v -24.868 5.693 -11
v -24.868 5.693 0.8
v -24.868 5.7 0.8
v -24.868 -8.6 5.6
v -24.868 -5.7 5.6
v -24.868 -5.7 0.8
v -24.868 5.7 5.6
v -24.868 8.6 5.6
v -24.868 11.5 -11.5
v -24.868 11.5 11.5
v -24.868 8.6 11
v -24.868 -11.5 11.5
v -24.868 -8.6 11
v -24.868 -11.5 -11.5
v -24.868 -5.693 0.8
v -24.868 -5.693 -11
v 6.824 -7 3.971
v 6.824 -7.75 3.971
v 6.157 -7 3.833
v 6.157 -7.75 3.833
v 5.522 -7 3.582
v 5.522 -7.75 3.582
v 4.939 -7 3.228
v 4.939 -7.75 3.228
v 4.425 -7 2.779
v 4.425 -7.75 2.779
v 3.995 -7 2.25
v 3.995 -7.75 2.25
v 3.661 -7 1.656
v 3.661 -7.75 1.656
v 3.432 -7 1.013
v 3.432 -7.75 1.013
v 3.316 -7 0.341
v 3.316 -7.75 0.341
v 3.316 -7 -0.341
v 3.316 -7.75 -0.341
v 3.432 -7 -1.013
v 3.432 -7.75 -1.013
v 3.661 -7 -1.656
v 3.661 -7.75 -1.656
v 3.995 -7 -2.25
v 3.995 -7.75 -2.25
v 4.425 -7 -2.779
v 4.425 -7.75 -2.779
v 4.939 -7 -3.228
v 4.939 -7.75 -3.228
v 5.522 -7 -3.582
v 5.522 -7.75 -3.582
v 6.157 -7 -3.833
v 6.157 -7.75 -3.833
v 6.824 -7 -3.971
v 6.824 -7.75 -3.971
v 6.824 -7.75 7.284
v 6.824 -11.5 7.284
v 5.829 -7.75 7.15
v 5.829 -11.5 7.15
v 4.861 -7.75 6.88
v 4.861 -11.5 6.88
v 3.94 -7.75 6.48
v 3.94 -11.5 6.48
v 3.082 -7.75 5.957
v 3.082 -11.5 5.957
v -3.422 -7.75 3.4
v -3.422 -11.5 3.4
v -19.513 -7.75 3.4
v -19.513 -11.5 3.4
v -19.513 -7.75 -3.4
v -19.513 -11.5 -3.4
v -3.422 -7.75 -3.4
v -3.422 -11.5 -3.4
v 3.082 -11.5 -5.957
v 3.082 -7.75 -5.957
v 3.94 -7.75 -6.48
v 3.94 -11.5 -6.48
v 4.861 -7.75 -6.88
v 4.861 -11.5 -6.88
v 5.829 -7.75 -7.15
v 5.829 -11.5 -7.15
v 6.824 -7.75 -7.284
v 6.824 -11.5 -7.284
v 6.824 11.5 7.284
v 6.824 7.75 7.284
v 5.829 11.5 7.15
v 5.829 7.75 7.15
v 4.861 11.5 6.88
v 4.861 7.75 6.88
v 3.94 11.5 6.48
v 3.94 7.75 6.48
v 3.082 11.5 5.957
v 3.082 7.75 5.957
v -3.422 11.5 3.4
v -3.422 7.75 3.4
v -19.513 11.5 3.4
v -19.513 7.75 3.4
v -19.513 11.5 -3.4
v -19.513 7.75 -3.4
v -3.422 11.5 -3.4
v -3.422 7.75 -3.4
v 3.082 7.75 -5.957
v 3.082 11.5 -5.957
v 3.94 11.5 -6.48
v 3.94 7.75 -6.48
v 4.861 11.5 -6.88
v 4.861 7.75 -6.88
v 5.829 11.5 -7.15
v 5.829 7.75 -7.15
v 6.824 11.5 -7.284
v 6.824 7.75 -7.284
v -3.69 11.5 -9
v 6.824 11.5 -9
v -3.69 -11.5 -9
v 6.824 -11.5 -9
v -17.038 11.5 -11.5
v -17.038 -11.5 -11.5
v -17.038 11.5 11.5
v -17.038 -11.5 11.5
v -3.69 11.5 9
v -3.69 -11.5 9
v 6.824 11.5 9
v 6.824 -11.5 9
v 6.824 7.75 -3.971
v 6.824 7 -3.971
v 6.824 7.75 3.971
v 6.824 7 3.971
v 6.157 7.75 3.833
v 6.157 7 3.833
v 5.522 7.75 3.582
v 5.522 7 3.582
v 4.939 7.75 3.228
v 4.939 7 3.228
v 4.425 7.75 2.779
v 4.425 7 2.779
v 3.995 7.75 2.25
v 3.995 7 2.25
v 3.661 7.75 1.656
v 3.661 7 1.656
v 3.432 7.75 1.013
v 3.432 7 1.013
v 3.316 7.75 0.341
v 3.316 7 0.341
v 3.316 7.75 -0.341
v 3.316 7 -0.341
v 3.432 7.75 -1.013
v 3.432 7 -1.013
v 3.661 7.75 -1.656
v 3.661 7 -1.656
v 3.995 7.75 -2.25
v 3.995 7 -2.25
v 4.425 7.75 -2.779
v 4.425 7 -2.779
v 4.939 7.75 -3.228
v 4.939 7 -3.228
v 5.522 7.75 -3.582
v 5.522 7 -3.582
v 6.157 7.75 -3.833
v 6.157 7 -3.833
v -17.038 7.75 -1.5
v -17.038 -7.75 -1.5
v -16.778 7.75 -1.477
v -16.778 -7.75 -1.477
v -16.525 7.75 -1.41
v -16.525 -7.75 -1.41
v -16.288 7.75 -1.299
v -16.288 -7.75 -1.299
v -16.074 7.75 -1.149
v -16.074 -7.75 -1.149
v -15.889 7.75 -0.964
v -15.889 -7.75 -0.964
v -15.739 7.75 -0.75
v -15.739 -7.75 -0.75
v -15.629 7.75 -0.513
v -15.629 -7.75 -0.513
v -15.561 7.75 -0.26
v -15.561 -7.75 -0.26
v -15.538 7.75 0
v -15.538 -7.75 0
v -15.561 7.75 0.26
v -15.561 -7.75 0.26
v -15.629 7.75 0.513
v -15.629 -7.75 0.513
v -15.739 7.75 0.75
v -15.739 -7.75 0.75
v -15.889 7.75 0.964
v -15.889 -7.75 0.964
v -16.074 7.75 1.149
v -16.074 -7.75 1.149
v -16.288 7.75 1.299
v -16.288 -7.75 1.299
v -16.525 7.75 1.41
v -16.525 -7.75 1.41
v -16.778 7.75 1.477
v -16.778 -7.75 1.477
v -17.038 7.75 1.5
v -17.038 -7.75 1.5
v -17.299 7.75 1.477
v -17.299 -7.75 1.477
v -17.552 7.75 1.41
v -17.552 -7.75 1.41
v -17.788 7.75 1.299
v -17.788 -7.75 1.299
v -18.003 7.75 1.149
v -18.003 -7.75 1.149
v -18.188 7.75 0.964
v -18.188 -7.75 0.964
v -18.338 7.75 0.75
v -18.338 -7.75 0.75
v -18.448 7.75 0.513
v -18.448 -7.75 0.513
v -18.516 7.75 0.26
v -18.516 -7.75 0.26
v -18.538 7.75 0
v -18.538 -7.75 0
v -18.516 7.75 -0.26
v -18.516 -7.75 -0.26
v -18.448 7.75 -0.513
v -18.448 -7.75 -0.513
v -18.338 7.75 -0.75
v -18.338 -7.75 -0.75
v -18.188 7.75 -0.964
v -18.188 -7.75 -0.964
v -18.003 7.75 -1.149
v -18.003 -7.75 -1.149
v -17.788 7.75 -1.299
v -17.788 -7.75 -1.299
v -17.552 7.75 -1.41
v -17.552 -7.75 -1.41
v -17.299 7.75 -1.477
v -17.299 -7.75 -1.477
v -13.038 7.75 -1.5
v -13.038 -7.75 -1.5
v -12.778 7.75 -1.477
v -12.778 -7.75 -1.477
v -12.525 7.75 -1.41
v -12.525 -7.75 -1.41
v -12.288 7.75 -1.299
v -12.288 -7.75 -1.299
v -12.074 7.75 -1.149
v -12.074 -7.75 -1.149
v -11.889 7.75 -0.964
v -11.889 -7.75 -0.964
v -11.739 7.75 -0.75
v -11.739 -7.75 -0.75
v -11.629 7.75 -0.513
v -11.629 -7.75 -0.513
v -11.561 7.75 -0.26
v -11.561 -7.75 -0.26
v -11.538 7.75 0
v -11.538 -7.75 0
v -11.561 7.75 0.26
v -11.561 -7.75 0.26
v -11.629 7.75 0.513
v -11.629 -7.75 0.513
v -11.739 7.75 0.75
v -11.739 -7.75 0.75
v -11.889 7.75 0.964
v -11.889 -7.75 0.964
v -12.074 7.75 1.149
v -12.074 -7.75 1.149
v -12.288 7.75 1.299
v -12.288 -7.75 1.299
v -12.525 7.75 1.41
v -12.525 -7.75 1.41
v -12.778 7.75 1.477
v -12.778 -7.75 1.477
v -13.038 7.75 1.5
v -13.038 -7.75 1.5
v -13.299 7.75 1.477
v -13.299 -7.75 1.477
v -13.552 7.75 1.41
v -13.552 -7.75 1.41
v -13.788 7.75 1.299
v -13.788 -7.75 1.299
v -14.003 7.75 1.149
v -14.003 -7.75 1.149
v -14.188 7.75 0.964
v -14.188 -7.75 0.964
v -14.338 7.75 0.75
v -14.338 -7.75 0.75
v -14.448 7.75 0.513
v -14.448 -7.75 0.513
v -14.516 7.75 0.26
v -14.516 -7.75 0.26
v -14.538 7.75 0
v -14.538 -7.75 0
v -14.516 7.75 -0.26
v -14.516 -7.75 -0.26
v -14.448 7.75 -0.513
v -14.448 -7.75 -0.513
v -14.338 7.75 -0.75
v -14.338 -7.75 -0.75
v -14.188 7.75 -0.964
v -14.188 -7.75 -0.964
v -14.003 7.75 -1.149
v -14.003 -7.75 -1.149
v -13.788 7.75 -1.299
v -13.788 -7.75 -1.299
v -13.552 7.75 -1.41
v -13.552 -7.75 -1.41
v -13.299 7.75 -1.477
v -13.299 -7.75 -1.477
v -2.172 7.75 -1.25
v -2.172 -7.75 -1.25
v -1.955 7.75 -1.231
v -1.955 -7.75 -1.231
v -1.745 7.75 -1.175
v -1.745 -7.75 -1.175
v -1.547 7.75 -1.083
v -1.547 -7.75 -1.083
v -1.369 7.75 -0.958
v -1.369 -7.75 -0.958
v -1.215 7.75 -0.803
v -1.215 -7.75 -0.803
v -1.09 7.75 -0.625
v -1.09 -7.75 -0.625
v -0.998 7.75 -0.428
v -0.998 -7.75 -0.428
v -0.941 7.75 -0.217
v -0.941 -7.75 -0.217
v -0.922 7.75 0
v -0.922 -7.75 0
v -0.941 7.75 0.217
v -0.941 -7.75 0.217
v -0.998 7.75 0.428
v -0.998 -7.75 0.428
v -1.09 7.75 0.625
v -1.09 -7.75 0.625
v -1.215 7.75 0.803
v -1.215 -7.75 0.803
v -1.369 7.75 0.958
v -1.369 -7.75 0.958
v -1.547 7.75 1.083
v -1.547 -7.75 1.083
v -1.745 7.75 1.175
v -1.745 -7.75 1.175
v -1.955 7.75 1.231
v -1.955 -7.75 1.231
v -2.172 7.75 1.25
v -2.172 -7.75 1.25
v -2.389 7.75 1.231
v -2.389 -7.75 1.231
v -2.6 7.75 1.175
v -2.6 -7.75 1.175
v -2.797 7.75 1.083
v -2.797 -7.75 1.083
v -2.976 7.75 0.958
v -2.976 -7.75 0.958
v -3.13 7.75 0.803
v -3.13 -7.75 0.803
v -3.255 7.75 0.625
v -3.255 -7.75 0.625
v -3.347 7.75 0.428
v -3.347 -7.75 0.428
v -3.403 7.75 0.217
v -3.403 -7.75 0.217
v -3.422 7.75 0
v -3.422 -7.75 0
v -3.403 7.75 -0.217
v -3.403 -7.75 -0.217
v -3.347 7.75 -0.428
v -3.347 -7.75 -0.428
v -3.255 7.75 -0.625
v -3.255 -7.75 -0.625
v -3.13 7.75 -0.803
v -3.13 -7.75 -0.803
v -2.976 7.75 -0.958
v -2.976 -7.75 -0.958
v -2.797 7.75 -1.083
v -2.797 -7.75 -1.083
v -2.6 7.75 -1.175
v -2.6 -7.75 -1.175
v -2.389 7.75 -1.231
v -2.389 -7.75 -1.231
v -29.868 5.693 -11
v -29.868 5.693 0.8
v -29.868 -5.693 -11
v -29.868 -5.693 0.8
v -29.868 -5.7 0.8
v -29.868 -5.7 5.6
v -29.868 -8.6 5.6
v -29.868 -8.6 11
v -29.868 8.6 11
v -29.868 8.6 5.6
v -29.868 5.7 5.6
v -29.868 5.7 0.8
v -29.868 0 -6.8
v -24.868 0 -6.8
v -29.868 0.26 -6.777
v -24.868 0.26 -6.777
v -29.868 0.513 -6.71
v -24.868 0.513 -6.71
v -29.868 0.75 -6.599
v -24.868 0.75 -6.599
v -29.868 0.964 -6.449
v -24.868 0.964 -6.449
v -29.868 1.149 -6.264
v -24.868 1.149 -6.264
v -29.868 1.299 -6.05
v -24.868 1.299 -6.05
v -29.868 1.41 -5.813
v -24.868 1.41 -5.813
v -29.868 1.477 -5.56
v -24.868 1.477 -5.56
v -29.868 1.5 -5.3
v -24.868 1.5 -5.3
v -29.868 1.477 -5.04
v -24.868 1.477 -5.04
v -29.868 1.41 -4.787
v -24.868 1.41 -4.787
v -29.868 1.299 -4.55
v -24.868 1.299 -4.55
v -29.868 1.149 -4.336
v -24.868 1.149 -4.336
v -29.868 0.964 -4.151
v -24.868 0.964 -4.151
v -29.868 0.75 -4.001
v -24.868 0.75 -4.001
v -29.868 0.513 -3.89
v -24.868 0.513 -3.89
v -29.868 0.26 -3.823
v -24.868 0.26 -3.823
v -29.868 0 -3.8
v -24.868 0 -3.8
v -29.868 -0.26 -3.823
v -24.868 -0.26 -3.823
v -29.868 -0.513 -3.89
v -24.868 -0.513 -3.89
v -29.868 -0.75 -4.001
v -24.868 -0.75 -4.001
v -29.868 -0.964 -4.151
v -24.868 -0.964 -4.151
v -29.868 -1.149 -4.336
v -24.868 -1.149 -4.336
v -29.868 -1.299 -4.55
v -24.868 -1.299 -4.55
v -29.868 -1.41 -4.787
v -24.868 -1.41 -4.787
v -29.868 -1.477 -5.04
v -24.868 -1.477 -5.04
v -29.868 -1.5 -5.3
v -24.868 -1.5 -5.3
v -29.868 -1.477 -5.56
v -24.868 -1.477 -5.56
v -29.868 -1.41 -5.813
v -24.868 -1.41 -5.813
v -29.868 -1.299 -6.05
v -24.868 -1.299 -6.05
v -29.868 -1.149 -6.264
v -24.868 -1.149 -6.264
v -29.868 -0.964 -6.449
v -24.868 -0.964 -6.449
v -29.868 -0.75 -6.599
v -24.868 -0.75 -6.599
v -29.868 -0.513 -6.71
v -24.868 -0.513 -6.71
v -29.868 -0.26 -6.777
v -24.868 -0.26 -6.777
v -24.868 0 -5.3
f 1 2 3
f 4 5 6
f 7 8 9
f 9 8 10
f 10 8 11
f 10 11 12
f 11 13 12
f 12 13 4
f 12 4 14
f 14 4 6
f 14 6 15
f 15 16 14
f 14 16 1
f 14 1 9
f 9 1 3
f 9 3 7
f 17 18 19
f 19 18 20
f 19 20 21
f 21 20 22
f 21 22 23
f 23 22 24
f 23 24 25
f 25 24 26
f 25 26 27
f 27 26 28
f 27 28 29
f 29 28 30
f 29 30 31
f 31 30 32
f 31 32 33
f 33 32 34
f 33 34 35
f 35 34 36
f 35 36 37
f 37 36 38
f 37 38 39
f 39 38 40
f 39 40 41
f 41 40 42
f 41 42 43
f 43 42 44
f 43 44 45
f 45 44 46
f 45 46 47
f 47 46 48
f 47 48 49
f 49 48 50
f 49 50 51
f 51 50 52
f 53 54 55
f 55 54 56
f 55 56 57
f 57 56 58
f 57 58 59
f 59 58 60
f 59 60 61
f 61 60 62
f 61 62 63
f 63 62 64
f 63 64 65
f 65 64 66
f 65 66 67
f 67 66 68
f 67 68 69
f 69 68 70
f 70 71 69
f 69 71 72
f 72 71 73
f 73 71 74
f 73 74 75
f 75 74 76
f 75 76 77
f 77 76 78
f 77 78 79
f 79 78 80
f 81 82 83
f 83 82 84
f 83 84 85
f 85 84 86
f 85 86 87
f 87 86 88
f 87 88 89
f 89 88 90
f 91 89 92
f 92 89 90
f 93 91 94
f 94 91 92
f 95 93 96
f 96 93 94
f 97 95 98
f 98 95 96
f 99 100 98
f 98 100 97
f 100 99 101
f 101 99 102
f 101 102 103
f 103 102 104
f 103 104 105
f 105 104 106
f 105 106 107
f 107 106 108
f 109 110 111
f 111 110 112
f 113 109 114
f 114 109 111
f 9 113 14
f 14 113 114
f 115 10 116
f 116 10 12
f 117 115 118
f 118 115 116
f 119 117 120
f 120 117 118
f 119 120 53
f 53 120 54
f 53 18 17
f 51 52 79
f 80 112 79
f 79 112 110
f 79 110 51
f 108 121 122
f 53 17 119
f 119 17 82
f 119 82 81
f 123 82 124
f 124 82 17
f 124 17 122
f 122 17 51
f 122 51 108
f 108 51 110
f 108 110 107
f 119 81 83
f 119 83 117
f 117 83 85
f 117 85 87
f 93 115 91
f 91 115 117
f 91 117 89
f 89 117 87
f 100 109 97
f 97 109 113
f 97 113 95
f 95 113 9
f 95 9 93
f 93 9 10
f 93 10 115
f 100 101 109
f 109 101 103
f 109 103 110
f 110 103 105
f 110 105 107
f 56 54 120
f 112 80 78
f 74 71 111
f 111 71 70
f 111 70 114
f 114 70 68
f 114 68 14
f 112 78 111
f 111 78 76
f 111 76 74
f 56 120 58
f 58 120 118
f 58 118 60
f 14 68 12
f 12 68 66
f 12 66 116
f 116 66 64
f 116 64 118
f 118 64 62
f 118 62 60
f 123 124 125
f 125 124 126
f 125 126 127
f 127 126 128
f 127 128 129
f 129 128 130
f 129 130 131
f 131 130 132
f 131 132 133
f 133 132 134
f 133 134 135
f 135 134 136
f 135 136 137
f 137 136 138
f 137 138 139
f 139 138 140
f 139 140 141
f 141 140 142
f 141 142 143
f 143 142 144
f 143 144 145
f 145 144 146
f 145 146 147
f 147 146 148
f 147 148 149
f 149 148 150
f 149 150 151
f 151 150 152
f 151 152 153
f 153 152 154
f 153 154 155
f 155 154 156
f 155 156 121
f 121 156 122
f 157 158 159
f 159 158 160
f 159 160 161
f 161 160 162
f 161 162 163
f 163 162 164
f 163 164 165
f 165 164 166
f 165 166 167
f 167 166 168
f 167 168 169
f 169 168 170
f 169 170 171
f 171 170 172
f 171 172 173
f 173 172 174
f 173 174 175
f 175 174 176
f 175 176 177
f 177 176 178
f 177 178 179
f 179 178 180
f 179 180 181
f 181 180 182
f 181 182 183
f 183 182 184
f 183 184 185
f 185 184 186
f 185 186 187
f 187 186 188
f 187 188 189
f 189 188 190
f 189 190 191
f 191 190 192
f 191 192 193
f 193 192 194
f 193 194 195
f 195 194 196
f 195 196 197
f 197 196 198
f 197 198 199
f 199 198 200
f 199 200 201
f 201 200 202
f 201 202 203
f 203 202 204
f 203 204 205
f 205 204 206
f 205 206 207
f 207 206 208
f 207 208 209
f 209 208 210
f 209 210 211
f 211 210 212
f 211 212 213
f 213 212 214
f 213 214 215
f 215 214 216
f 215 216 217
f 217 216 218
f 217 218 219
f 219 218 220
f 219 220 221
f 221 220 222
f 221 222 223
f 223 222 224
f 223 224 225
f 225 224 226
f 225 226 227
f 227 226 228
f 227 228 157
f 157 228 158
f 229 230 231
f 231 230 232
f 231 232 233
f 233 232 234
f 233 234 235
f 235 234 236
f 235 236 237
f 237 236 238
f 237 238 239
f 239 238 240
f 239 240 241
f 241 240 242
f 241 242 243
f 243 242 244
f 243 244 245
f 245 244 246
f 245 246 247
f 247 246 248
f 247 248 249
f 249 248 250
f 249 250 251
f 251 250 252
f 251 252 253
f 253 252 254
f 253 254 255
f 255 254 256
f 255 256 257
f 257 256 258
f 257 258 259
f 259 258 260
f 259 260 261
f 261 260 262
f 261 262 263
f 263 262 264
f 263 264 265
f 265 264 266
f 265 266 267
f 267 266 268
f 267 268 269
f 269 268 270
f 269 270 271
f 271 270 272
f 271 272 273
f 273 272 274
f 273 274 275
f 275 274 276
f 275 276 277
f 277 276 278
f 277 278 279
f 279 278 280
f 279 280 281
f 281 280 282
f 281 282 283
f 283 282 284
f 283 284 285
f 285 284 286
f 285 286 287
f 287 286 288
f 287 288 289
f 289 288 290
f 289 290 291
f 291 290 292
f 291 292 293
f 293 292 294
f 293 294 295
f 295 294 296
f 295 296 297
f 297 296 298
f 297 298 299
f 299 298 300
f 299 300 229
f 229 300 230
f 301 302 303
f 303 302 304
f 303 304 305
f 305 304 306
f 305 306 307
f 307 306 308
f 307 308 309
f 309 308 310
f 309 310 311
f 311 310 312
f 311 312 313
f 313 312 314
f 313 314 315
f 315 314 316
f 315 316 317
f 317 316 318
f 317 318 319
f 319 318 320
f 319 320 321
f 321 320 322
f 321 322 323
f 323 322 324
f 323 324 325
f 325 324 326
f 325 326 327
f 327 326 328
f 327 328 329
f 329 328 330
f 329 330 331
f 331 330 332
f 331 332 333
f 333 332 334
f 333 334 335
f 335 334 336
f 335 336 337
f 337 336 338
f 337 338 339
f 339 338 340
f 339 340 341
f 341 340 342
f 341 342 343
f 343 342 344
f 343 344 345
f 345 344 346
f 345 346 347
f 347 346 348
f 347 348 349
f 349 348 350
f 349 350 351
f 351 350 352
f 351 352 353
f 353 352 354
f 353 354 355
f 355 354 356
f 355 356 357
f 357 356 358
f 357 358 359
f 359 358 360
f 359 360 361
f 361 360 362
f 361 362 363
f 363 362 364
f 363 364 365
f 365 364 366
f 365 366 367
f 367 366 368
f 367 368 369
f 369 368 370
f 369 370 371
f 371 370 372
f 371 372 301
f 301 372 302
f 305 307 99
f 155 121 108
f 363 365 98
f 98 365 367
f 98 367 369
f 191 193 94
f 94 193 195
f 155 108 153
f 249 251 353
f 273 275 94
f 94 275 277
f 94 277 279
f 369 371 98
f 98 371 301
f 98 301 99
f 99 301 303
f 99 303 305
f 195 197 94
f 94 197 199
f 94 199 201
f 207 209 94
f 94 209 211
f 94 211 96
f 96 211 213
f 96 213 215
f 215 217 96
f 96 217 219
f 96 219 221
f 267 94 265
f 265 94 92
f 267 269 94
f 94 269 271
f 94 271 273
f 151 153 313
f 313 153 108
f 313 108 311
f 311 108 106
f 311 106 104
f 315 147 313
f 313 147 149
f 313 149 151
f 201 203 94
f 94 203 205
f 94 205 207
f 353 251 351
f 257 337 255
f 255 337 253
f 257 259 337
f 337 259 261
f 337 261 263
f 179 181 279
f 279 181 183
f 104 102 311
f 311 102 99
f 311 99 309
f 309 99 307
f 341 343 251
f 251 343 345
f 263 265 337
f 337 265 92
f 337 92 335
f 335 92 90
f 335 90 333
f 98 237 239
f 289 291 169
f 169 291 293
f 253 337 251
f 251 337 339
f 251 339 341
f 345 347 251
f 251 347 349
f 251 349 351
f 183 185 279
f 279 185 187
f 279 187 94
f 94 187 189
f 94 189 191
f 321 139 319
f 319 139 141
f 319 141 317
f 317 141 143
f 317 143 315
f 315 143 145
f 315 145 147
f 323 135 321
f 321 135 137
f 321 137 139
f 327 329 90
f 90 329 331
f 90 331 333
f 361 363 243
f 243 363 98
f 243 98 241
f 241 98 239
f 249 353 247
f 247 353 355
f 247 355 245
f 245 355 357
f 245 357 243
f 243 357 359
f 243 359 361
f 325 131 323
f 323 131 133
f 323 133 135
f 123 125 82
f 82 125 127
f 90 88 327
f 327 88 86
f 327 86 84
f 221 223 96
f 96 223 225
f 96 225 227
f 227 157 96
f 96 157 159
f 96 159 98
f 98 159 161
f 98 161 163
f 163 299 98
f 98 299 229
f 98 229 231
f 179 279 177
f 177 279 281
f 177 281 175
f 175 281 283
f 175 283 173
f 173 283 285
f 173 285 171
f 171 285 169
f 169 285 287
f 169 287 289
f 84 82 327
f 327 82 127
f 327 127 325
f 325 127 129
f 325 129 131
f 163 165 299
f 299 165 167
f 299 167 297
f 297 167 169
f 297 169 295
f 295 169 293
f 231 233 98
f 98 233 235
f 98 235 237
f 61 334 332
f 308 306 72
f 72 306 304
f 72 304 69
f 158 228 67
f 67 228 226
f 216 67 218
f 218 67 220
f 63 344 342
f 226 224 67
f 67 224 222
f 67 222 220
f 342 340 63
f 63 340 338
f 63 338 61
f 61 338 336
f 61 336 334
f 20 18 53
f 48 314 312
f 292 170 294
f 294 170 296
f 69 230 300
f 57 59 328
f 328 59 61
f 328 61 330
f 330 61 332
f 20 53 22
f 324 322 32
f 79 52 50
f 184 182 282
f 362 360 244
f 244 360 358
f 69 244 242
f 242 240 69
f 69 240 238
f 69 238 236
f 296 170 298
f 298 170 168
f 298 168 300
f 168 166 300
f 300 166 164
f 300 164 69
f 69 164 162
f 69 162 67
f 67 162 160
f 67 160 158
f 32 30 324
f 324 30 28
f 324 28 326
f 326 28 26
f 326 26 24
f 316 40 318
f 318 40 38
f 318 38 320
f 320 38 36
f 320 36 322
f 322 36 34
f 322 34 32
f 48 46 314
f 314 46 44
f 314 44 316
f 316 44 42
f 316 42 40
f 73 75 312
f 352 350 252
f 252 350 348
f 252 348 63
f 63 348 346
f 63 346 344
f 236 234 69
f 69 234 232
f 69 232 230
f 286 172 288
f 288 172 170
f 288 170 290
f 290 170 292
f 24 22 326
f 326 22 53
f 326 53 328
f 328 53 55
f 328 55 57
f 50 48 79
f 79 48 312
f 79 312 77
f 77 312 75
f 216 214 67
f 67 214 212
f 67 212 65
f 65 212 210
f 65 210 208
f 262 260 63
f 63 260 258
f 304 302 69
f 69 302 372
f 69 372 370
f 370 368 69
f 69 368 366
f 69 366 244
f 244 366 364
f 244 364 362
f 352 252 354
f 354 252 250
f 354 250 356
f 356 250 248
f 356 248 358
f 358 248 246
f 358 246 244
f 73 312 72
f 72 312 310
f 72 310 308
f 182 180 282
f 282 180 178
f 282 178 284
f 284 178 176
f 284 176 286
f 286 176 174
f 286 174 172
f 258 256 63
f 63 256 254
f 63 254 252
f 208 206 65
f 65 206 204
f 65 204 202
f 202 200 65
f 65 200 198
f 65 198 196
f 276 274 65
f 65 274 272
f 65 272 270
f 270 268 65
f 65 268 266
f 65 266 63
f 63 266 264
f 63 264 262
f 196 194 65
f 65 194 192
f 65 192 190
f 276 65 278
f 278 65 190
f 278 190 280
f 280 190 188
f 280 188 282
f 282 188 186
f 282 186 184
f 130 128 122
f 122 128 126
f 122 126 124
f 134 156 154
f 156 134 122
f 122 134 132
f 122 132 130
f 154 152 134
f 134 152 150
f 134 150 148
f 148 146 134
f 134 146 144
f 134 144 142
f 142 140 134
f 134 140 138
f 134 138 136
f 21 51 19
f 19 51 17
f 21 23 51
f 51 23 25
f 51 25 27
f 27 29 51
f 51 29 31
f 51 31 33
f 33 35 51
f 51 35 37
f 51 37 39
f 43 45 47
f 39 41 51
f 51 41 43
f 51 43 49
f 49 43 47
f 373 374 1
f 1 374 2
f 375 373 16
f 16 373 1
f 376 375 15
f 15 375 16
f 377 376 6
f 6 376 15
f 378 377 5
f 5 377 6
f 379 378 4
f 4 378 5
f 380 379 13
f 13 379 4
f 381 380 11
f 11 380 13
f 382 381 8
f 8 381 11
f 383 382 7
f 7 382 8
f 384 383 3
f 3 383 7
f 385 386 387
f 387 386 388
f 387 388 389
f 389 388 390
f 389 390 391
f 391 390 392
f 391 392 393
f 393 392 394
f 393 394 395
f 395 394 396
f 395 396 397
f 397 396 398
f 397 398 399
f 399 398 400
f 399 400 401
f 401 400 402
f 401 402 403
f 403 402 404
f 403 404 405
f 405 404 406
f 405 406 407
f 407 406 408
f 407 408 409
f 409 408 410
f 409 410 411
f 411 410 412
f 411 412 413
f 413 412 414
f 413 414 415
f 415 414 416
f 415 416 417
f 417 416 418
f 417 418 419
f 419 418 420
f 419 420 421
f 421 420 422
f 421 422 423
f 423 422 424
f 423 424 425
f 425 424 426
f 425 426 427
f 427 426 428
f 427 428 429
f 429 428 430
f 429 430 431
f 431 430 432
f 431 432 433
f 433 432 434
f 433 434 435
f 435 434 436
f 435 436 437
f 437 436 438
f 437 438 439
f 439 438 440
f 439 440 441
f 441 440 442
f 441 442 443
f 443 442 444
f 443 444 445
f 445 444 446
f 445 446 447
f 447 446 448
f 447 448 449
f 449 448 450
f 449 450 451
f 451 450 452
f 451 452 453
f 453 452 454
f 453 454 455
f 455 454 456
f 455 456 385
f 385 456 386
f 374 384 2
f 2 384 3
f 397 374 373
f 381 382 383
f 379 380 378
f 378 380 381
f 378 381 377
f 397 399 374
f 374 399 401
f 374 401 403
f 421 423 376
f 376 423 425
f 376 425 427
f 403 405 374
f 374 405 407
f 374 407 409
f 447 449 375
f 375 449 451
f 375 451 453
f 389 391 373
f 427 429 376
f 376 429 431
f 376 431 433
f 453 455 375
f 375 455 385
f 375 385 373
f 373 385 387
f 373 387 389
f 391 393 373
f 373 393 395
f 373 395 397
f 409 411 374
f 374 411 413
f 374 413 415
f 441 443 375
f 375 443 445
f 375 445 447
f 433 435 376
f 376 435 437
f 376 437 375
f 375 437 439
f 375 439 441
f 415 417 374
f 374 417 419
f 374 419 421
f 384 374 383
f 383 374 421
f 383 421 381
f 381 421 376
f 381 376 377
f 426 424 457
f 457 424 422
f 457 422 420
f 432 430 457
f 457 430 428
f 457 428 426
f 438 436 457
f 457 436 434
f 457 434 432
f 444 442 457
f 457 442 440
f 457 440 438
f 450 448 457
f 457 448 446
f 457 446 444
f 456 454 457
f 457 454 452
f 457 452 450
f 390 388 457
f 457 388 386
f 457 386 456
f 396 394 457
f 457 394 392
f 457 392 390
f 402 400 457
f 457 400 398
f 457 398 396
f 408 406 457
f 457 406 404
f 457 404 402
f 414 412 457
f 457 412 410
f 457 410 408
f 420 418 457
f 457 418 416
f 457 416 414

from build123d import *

# Parameters (mm, degrees)
BOSS_EXTRUDE1_DEPTH = 11.5
SKETCH1_13_R        = 1.5
SKETCH1_13_R_2      = 1.25
BOSS_EXTRUDE2_DEPTH = 7.75
BOSS_EXTRUDE3_DEPTH = 7
SKETCH2_R           = 1.5
BOSS_EXTRUDE4_DEPTH = 5


with BuildPart() as part:
    # Sketch1 → Boss-Extrude1 (new, symmetric)
    with BuildSketch(Plane(origin=(0, 0, 0), x_dir=(1, 0, 0), z_dir=(0, 1, 0))):
        with BuildLine():
            Line((6.824314586, 7.284360201), (6.824314586, 9.00020274))
            Line((6.824314586, 9.00020274), (-3.690467309, 9.00020274))
            Line((-3.690467309, 9.00020274), (-17.038497557, 11.5))
            Line((-17.038497557, 11.5), (-24.867971487, 11.5))
            Line((-24.867971487, 11.5), (-24.867971487, -11.5))
            Line((-24.867971487, -11.5), (-17.038497557, -11.5))
            Line((-17.038497557, -11.5), (-3.690467309, -9.00020274))
            Line((-3.690467309, -9.00020274), (6.824314586, -9.00020274))
            Line((6.824314586, -9.00020274), (6.824314586, -7.284360201))
            ThreePointArc((6.824314586, -7.284360201), (4.861171432, -6.879883717), (3.082035449, -5.956732906))
            Line((3.082035449, -5.956732906), (-3.422402494, -3.4))
            Line((-3.422402494, -3.4), (-19.513448301, -3.4))
            Line((-19.513448301, -3.4), (-19.513448301, 3.4))
            Line((-19.513448301, 3.4), (-3.422402494, 3.4))
            Line((-3.422402494, 3.4), (3.082035449, 5.956732906))
            ThreePointArc((3.082035449, 5.956732906), (4.861171432, 6.879883717), (6.824314586, 7.284360201))
        make_face()
    extrude(amount=BOSS_EXTRUDE1_DEPTH, both=True)

    # Sketch1<13> → Boss-Extrude2 (add, symmetric)
    with BuildSketch(Plane(origin=(0, 0, 0), x_dir=(1, 0, 0), z_dir=(0, 1, 0))):
        with BuildLine():
            Line((6.824314586, 3.971385595), (6.824314586, 7.284360201))
            ThreePointArc((6.824314586, 7.284360201), (4.861171432, 6.879883717), (3.082035449, 5.956732906))
            Line((3.082035449, 5.956732906), (-3.422402494, 3.4))
            Line((-3.422402494, 3.4), (-19.513448301, 3.4))
            Line((-19.513448301, 3.4), (-19.513448301, -3.4))
            Line((-19.513448301, -3.4), (-3.422402494, -3.4))
            Line((-3.422402494, -3.4), (3.082035449, -5.956732906))
            ThreePointArc((3.082035449, -5.956732906), (4.861171432, -6.879883717), (6.824314586, -7.284360201))
            Line((6.824314586, -7.284360201), (6.824314586, -3.971385595))
            ThreePointArc((6.824314586, -3.971385595), (3.301909035, 0), (6.824314586, 3.971385595))
        make_face()
        with Locations((-17.038497557, 0)):
            Circle(SKETCH1_13_R, mode=Mode.SUBTRACT)
        with Locations((-13.038497557, 0)):
            Circle(SKETCH1_13_R, mode=Mode.SUBTRACT)
        with Locations((-2.172402494, 0)):
            Circle(SKETCH1_13_R_2, mode=Mode.SUBTRACT)
    extrude(amount=BOSS_EXTRUDE2_DEPTH, both=True)

    # Sketch1<14> → Boss-Extrude3 (add, symmetric)
    with BuildSketch(Plane(origin=(0, 0, 0), x_dir=(1, 0, 0), z_dir=(0, 1, 0))):
        with BuildLine():
            Line((6.824314586, -3.971385595), (6.824314586, 3.971385595))
            ThreePointArc((6.824314586, 3.971385595), (3.301909035, 0), (6.824314586, -3.971385595))
        make_face()
    extrude(amount=BOSS_EXTRUDE3_DEPTH, both=True)

    # Sketch2 → Boss-Extrude4 (add)
    with BuildSketch(Plane.ZY.offset(24.867971487)):
        Polygon((5.6, 5.7), (0.8, 5.7), (0.8, 5.69251999), (-10.999928788, 5.69251999), (-10.999928788, -5.69251999), (0.8, -5.69251999), (0.8, -5.7), (5.6, -5.7), (5.6, -8.6), (11, -8.6), (11, 8.6), (5.6, 8.6), align=None)
        with Locations((-5.3, 0)):
            Circle(SKETCH2_R, mode=Mode.SUBTRACT)
    extrude(amount=BOSS_EXTRUDE4_DEPTH)


solid = part.part
